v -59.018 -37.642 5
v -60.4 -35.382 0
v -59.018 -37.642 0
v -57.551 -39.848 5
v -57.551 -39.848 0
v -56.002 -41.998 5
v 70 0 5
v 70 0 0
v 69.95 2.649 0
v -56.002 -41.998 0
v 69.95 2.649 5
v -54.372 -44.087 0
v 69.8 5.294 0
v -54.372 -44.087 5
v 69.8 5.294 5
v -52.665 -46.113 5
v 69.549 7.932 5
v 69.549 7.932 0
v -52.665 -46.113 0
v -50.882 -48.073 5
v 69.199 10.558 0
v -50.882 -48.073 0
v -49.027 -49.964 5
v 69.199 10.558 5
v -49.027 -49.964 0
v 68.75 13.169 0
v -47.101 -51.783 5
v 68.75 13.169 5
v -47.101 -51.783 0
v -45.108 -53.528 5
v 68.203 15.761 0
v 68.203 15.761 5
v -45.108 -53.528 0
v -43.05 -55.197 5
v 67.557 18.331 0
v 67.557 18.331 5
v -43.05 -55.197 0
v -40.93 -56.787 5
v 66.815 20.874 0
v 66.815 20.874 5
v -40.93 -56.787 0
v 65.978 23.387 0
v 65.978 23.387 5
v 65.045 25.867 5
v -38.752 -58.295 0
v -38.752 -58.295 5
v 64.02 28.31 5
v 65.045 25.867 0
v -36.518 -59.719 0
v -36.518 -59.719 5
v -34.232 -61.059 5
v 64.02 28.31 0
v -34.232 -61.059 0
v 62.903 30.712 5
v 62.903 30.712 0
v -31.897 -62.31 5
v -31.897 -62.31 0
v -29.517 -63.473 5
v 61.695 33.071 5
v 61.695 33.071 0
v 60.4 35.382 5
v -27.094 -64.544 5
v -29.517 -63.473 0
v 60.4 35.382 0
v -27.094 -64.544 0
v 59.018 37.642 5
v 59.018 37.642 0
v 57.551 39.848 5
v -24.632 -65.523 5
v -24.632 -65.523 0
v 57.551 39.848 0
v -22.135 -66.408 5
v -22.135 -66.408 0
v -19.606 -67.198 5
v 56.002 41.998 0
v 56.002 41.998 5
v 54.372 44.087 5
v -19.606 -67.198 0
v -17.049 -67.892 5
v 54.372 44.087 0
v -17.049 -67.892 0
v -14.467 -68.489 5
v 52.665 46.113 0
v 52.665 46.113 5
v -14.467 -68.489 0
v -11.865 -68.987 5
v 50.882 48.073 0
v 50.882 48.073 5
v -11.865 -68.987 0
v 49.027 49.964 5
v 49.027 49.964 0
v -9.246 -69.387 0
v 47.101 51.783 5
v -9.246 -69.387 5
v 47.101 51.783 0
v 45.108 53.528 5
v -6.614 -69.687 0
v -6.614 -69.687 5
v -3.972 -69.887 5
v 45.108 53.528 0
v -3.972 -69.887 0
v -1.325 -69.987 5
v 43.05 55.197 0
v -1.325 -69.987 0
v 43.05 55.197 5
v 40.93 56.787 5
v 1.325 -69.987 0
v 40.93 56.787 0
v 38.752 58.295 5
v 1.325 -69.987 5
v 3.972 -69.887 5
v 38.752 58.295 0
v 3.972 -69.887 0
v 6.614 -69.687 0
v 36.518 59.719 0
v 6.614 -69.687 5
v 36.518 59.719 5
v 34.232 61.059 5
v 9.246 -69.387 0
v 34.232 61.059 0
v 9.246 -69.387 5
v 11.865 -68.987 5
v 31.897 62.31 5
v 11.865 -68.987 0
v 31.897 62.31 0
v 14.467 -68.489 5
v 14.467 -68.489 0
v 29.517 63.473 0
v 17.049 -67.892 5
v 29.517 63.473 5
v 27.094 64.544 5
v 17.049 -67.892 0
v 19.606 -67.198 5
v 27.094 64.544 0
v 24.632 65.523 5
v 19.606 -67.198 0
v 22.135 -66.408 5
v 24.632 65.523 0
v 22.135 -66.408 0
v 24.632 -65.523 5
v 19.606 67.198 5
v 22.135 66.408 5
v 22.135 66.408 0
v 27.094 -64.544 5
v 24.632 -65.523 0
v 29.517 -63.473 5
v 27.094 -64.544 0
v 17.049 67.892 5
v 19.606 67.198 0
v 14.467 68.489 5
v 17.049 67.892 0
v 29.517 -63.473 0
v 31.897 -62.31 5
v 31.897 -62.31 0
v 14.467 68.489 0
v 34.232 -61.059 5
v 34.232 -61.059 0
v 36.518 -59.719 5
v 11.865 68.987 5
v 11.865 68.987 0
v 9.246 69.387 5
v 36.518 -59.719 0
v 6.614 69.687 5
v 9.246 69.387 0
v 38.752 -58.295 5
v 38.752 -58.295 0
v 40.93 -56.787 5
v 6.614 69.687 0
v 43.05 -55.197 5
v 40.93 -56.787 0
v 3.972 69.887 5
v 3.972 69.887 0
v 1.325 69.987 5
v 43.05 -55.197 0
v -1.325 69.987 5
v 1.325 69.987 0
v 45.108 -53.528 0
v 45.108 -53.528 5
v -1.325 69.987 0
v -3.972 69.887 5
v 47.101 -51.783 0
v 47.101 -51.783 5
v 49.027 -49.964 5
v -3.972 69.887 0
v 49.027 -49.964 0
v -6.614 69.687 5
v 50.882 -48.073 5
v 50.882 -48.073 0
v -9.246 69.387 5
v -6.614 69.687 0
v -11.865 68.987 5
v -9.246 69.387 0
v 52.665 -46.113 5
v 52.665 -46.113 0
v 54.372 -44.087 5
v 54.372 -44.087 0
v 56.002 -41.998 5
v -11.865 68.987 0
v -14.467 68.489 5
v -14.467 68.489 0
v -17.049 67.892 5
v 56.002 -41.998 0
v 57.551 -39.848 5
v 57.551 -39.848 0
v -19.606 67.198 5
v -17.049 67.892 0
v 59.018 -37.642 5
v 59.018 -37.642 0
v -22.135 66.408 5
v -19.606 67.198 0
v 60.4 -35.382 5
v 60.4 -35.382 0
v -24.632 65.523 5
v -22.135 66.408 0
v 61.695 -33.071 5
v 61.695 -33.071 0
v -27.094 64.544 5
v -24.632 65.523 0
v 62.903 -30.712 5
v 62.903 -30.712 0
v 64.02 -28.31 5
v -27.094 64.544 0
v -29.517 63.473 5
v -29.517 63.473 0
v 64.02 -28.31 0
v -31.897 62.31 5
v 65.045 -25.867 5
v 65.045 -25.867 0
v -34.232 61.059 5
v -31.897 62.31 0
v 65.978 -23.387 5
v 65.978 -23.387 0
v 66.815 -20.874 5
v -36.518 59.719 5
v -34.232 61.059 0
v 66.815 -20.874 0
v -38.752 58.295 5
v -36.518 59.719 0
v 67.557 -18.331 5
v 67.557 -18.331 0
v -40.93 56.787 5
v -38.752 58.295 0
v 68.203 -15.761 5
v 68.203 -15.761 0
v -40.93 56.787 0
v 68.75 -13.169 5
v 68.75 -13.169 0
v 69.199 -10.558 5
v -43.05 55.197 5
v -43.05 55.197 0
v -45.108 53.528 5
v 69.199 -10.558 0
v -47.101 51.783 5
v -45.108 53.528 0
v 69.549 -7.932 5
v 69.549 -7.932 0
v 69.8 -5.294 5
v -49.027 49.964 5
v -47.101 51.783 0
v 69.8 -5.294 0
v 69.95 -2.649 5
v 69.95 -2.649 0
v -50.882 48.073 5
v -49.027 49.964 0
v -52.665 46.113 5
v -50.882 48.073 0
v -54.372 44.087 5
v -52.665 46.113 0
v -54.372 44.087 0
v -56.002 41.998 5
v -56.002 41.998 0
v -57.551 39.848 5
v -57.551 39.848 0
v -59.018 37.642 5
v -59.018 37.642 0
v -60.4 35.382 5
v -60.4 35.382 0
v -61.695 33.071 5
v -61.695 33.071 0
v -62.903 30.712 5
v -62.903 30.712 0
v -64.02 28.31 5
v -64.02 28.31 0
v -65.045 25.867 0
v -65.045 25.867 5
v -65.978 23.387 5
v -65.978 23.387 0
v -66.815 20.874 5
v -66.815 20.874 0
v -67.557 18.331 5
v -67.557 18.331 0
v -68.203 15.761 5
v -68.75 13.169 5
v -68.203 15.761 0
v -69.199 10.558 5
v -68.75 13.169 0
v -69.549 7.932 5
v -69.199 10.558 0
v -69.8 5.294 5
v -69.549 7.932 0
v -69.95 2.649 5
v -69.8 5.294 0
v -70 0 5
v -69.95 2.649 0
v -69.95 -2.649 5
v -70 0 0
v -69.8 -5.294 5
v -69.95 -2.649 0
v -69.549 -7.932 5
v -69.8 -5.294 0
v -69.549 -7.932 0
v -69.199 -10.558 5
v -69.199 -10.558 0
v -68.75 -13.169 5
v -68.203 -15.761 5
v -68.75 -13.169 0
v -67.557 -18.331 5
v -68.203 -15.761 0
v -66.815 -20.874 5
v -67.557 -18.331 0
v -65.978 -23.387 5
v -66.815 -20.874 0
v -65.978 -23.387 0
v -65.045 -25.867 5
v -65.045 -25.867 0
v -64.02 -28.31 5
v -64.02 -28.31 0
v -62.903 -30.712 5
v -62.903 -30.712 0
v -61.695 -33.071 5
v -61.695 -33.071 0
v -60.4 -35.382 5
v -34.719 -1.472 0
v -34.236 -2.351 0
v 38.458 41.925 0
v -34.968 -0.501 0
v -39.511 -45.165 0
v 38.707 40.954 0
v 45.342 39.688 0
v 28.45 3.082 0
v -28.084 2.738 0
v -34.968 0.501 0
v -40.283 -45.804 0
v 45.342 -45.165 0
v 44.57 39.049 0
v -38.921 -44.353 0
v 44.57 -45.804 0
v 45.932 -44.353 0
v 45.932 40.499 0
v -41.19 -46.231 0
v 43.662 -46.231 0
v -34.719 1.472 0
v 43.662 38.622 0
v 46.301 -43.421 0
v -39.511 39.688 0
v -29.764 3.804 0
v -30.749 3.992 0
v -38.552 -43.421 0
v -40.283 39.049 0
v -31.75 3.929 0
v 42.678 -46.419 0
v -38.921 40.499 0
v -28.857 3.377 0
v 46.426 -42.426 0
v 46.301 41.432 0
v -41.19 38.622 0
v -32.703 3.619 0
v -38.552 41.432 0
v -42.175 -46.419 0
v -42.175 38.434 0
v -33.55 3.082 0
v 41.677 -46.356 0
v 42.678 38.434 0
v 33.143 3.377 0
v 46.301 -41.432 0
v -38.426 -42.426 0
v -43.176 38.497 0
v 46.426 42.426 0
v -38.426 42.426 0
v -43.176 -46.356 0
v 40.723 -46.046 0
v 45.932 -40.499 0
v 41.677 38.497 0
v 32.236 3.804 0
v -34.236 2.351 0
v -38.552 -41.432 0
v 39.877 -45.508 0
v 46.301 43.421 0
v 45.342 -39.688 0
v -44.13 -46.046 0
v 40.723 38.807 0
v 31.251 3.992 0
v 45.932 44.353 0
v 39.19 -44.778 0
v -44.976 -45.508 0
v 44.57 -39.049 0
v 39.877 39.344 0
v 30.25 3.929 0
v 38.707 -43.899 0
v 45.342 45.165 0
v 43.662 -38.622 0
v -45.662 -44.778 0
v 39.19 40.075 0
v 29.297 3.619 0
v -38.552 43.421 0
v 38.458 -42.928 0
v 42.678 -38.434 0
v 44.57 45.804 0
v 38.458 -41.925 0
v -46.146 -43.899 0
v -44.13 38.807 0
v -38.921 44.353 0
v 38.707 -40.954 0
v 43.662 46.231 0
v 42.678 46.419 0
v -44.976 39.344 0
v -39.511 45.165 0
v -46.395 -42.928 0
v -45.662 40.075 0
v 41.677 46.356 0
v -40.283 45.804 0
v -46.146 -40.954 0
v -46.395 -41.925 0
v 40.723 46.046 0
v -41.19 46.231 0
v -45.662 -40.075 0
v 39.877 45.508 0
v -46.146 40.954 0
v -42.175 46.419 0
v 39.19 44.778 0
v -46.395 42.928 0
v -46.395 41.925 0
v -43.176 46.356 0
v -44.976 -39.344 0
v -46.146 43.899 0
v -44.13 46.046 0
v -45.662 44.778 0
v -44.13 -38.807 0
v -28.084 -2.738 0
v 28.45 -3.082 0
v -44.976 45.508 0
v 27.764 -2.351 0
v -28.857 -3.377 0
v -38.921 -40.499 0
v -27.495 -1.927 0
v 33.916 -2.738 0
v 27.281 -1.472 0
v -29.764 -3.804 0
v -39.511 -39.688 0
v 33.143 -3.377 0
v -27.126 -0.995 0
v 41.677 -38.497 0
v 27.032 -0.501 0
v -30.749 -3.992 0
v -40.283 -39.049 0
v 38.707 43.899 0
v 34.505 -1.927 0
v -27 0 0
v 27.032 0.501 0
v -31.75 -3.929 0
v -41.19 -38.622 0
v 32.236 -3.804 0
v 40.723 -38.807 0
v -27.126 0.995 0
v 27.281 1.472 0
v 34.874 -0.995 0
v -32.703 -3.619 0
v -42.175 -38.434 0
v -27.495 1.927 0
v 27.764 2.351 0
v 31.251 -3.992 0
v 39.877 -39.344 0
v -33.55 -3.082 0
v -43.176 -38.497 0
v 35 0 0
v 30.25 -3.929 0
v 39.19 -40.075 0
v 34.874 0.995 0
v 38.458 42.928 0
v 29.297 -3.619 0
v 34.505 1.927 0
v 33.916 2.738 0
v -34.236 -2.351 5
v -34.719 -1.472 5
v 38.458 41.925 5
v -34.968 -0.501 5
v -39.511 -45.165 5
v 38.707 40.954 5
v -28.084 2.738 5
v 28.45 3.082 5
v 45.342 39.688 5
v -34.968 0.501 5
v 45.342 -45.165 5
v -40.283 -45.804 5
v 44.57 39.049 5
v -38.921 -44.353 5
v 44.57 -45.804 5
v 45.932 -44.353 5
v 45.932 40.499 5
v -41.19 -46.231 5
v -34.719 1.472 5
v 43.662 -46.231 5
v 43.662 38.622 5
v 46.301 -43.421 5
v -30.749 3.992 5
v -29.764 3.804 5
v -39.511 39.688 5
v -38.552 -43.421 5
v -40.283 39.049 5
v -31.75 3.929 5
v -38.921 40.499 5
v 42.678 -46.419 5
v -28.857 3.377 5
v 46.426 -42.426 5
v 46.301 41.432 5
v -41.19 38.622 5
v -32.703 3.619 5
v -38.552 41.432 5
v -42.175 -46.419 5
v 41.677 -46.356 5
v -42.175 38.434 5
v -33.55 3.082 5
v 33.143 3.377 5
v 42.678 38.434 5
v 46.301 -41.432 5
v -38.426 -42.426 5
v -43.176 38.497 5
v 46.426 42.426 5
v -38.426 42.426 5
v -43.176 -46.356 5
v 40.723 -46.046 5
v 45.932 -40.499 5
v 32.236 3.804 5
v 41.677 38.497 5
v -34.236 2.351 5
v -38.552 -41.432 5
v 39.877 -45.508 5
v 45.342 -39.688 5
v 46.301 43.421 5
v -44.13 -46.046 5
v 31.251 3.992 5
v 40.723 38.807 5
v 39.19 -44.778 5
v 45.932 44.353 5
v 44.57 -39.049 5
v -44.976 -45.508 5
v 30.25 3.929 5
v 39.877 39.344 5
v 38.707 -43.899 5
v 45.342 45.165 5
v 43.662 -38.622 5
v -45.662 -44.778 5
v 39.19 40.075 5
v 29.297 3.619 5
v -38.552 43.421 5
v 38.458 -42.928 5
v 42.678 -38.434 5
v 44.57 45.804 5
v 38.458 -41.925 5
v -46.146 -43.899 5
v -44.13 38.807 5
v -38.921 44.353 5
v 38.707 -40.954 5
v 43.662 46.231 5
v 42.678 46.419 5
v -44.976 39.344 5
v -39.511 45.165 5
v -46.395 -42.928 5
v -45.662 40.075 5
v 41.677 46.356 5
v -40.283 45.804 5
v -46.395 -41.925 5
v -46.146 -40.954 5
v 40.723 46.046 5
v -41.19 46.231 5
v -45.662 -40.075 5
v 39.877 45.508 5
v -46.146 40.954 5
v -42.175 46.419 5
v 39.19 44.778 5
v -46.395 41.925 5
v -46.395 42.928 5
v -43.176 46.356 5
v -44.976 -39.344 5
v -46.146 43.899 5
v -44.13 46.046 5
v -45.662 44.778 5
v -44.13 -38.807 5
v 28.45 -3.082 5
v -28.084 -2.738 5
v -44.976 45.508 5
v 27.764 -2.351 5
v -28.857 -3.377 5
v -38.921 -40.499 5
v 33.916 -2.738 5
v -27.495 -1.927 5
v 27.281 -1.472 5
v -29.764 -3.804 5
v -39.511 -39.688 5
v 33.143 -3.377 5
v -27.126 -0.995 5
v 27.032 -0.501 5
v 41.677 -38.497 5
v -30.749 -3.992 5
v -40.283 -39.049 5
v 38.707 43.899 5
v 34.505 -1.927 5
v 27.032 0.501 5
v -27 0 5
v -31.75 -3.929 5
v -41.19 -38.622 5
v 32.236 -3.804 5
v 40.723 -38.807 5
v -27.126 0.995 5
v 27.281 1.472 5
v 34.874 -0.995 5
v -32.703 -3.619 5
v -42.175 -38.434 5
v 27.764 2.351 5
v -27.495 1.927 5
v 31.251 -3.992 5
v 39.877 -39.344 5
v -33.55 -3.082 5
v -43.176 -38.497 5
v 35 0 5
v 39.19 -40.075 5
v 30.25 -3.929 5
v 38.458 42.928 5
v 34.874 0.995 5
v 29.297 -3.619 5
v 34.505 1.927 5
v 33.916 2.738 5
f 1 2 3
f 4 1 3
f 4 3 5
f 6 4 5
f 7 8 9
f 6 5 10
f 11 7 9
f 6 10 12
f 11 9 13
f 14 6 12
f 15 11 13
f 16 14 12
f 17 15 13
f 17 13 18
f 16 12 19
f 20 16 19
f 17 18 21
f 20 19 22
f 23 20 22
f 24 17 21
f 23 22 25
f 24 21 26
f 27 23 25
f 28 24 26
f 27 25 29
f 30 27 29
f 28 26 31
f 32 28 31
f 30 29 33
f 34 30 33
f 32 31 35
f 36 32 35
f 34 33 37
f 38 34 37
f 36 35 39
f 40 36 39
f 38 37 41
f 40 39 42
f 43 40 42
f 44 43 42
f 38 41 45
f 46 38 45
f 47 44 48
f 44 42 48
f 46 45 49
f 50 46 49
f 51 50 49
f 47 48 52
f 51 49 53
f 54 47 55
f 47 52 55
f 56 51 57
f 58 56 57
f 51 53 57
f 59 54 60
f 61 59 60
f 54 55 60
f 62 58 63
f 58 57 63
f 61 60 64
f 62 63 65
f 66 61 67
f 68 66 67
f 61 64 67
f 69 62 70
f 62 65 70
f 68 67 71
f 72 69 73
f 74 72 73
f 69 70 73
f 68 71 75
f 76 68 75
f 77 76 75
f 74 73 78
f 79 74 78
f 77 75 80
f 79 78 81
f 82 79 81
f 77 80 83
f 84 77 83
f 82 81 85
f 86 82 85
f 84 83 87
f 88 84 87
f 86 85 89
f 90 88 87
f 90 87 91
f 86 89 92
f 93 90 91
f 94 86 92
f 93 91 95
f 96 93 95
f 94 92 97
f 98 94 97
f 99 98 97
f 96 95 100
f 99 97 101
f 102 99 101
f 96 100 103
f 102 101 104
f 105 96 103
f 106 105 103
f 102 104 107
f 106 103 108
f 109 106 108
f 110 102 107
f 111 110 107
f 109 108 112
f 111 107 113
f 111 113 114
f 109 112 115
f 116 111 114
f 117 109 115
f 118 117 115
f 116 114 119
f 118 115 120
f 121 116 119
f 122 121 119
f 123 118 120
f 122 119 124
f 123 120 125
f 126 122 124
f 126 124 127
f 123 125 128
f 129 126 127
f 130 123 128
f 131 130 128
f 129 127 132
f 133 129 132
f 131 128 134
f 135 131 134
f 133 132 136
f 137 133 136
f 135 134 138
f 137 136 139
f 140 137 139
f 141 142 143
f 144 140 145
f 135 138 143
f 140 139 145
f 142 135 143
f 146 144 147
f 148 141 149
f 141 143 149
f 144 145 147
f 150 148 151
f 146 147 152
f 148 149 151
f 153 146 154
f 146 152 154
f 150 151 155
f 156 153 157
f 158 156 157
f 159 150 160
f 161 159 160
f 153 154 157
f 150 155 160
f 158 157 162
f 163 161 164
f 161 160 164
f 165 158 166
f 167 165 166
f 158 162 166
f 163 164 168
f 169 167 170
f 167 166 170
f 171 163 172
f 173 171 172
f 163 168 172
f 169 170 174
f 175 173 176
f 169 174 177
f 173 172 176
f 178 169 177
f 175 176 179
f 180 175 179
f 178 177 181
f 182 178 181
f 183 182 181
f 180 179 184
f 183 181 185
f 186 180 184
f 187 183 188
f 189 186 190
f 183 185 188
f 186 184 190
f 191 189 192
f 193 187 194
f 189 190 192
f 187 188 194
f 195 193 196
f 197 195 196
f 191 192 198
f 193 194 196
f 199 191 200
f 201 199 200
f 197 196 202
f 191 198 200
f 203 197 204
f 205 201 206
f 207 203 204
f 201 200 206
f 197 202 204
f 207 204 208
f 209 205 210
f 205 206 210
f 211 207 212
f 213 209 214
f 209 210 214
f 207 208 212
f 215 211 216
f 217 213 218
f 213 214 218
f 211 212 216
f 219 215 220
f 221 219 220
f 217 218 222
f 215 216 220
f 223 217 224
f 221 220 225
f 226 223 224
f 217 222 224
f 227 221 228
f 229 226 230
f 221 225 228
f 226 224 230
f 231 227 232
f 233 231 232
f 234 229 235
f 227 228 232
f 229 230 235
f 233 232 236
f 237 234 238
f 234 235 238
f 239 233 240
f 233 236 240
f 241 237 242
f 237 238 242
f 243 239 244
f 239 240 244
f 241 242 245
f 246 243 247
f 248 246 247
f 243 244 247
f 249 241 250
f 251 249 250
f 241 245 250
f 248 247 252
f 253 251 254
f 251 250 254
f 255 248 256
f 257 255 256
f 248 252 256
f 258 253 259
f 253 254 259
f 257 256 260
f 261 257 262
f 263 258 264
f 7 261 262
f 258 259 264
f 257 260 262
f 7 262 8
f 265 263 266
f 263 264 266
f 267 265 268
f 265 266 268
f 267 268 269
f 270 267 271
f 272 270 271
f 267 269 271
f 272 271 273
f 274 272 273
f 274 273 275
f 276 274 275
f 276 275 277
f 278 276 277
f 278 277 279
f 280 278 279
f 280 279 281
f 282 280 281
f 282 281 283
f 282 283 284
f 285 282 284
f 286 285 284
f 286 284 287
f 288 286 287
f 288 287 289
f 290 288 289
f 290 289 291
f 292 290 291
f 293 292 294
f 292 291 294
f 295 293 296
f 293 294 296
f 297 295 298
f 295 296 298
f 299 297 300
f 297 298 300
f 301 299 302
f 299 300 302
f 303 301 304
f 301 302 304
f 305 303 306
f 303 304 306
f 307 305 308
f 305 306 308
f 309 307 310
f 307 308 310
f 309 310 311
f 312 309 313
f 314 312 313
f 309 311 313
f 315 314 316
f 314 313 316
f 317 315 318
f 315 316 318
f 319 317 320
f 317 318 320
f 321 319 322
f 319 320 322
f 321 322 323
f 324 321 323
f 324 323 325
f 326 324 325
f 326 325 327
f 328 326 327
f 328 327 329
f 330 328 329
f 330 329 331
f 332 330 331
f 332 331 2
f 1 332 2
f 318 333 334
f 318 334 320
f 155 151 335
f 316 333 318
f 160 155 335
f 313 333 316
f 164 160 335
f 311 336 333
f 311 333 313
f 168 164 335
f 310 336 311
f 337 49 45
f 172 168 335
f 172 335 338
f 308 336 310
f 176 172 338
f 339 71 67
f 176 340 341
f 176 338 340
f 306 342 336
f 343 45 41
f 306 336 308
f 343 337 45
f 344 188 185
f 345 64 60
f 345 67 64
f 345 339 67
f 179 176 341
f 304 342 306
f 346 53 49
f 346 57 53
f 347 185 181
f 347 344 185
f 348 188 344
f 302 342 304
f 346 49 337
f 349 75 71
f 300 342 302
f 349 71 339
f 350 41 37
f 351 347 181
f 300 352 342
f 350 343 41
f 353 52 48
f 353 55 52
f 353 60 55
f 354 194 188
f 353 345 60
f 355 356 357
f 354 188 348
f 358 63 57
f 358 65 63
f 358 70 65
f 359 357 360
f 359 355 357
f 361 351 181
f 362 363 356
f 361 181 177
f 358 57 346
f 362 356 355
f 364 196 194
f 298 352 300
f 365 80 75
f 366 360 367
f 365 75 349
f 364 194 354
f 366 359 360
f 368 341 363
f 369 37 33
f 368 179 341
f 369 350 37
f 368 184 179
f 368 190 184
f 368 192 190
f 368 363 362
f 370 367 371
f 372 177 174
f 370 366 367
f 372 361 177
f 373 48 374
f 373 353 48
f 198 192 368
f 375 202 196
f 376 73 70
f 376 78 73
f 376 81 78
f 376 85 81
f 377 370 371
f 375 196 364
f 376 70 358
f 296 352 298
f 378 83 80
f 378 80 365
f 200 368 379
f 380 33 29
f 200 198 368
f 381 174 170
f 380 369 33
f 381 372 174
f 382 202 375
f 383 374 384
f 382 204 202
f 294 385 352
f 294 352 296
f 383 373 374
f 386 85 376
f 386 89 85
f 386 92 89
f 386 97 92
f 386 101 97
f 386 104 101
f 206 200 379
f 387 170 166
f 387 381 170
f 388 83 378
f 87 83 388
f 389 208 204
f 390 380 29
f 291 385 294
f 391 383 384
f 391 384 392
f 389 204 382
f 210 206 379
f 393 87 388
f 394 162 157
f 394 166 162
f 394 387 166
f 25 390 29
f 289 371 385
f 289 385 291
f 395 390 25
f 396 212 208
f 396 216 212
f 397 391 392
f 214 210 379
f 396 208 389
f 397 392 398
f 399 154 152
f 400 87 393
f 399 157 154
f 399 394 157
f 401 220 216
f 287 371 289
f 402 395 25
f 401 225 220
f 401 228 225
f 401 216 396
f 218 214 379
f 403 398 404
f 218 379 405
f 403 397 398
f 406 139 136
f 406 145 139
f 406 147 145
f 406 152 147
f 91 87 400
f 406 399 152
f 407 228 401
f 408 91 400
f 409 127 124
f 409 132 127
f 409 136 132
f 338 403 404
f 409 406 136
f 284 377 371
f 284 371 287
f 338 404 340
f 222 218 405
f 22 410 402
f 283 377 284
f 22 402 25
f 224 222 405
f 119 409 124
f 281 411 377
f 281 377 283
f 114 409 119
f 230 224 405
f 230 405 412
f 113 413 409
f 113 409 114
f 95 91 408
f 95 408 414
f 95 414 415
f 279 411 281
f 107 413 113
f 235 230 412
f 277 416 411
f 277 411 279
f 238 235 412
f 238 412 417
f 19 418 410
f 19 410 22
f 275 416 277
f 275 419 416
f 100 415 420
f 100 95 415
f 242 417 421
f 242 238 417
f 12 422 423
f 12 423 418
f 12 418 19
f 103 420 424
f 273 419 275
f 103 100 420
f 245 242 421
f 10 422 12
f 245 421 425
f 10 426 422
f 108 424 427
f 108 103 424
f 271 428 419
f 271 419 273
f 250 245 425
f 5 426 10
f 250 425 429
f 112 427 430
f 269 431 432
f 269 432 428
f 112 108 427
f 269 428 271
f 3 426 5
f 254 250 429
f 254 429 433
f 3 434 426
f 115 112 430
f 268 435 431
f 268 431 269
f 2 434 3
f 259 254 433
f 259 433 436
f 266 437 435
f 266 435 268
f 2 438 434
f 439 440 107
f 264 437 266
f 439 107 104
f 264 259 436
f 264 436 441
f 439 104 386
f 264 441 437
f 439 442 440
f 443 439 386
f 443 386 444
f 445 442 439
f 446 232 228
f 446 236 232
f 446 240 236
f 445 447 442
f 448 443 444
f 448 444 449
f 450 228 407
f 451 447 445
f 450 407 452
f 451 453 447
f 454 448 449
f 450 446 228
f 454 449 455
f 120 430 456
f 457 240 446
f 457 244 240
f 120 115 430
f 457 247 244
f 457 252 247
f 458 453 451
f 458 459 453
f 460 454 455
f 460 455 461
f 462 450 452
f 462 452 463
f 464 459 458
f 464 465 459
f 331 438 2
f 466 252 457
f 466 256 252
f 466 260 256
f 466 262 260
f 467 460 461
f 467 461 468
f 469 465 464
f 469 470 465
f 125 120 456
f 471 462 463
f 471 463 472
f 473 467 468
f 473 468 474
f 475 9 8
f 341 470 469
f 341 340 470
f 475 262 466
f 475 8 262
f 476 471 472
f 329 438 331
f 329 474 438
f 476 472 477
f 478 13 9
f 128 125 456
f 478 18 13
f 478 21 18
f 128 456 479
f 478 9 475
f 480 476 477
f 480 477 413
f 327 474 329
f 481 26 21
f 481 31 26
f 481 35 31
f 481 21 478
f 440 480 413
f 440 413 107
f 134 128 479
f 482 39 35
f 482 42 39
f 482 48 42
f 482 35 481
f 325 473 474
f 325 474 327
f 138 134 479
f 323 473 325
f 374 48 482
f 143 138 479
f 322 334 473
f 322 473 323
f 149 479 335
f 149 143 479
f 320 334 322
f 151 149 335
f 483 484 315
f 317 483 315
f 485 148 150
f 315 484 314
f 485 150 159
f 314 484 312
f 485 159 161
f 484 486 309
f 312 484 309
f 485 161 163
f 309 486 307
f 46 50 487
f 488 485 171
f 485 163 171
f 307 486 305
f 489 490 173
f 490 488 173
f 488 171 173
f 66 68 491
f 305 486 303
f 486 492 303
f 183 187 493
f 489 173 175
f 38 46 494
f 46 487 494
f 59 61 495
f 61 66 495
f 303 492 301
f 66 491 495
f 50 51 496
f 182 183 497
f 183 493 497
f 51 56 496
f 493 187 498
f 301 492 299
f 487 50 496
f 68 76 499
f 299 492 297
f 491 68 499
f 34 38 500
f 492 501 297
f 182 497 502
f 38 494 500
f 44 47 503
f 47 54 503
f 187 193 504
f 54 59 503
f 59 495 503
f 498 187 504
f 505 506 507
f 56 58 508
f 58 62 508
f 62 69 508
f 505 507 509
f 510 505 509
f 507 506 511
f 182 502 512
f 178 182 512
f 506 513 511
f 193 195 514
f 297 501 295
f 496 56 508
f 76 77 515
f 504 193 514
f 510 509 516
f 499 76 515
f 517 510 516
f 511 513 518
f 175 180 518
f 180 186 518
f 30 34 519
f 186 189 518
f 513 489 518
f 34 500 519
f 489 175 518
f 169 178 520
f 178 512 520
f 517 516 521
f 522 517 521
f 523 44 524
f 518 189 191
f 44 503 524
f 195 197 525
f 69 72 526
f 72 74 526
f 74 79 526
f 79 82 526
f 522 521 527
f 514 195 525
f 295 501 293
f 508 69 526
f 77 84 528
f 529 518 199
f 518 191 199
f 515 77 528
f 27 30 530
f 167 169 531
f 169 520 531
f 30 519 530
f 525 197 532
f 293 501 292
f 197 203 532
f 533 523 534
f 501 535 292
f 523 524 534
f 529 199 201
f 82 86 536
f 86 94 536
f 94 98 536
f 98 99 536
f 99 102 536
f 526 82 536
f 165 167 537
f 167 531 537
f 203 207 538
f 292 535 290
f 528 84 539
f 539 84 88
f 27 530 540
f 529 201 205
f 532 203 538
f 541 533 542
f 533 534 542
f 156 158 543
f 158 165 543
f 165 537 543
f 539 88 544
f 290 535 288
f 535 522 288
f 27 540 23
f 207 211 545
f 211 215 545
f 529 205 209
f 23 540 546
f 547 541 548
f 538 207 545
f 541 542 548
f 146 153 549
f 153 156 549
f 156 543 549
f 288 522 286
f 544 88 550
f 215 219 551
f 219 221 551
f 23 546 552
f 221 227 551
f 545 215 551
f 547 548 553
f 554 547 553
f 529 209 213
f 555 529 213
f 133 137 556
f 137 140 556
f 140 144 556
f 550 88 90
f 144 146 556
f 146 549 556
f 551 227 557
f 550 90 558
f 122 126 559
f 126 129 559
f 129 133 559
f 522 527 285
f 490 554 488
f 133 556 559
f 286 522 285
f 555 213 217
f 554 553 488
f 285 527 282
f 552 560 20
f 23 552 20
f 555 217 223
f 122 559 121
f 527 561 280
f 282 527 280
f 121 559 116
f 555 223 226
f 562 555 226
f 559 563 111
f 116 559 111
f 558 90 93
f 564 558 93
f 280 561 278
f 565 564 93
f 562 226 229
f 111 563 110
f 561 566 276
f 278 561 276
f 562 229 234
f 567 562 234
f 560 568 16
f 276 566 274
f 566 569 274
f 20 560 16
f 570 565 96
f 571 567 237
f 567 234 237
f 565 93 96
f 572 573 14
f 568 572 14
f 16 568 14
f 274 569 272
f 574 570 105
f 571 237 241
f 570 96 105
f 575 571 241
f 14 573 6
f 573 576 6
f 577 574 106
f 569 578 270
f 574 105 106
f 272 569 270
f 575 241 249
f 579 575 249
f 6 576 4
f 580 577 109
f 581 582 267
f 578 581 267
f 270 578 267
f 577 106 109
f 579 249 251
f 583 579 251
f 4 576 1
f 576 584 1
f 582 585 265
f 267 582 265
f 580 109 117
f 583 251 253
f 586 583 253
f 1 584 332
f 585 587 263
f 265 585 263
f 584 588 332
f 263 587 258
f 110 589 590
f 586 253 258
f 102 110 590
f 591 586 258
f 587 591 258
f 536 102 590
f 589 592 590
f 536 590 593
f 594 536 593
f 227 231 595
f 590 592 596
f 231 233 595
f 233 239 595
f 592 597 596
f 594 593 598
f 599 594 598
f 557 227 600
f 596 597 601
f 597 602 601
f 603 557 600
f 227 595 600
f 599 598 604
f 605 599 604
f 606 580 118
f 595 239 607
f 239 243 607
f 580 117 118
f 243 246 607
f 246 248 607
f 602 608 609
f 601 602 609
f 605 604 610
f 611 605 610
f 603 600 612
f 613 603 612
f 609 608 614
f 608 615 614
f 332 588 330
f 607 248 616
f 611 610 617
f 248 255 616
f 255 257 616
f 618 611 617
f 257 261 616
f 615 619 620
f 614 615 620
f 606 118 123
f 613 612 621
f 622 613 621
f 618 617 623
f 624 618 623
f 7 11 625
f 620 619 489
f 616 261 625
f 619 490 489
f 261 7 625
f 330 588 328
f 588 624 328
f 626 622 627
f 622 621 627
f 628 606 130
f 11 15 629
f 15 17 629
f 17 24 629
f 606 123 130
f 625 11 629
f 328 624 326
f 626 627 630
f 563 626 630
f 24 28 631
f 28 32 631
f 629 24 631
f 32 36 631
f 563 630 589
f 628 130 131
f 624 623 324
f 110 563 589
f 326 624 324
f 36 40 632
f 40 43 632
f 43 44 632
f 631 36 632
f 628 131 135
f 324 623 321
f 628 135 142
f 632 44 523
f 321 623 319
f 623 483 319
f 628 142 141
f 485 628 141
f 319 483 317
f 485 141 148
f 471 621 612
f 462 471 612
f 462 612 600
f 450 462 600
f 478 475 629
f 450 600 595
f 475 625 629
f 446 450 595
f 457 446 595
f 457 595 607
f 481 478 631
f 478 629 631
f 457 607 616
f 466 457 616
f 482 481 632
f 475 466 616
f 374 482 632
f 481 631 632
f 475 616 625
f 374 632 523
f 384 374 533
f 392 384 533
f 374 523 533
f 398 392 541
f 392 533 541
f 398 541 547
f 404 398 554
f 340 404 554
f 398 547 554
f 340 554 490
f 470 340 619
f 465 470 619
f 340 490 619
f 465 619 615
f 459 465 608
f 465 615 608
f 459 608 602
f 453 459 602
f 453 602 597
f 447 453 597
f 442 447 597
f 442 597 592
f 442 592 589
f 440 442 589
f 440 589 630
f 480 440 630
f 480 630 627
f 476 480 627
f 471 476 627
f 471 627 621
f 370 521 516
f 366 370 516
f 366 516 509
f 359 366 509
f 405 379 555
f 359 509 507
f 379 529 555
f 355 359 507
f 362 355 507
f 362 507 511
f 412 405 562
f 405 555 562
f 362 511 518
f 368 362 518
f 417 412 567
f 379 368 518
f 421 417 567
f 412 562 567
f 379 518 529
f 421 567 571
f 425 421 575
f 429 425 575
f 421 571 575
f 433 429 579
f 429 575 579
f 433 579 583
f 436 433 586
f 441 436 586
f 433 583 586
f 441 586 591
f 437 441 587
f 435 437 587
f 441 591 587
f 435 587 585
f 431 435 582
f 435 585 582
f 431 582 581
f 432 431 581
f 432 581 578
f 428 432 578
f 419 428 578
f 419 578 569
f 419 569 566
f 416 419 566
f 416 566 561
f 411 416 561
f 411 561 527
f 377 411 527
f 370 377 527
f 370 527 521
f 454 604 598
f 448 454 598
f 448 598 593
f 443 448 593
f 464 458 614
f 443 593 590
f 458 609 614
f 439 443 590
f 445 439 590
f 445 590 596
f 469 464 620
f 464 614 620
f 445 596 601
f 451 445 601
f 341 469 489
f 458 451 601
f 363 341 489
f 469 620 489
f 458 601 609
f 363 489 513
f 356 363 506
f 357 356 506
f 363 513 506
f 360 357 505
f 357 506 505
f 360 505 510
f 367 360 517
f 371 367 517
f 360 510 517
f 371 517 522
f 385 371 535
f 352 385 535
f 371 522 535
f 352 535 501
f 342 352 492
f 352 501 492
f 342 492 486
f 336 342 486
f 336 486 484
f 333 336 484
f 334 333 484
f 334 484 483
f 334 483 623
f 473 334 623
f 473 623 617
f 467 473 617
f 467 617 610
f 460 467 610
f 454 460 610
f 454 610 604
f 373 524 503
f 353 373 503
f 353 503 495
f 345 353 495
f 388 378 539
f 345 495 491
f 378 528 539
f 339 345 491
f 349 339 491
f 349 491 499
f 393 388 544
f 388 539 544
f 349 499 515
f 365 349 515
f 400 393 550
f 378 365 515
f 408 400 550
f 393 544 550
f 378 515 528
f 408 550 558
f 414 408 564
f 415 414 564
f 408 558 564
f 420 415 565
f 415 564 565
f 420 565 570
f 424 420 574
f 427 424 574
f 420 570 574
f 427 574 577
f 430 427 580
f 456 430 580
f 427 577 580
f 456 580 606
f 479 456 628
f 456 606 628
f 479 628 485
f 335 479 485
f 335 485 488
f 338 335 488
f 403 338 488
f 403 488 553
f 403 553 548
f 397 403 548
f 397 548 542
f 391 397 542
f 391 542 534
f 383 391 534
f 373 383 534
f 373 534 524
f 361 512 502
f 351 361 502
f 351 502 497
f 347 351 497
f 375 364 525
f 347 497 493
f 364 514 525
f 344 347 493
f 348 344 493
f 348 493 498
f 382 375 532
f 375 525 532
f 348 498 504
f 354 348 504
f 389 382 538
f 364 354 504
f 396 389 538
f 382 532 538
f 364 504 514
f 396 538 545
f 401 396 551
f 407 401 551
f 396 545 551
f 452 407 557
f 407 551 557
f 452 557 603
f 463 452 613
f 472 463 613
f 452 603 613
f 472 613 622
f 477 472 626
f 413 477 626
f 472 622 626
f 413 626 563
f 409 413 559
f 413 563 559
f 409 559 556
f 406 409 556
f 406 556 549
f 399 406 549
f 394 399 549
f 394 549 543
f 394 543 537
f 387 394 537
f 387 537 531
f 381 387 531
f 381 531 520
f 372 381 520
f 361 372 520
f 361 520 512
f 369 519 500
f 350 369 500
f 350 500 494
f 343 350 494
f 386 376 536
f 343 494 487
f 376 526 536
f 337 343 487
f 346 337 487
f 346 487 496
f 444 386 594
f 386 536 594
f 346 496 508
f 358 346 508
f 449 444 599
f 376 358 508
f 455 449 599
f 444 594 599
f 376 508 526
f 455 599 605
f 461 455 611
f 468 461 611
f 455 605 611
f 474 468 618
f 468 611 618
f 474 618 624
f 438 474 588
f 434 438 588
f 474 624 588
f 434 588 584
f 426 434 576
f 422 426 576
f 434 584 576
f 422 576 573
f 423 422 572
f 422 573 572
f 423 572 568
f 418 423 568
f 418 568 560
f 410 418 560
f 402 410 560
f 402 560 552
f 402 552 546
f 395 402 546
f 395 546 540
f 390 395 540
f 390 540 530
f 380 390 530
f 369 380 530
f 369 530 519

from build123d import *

# Parameters (mm, degrees)
SKETCH_R        = 70
PAD_DEPTH       = 5
SKETCH001_R     = 4
POCKET_DEPTH    = 5
SKETCH002_R     = 4
POCKET001_DEPTH = 5


with BuildPart() as part:
    # Sketch → Pad (new body)
    with BuildSketch(Plane.XY):
        Circle(SKETCH_R)
    extrude(amount=PAD_DEPTH)

    # Sketch001 → Pocket (cut)
    with BuildSketch(Plane.XY.offset(5)):
        with Locations((-42.426407, 42.426407)):
            Circle(SKETCH001_R)
        with Locations((42.426407, 42.426407)):
            Circle(SKETCH001_R)
        with Locations((42.426407, -42.426407)):
            Circle(SKETCH001_R)
        with Locations((-42.426407, -42.426407)):
            Circle(SKETCH001_R)
    extrude(amount=-POCKET_DEPTH, mode=Mode.SUBTRACT)

    # Sketch002 → Pocket001 (cut)
    with BuildSketch(Plane.XY.offset(5)):
        with Locations((-31, 0)):
            Circle(SKETCH002_R)
        with Locations((31, 0)):
            Circle(SKETCH002_R)
    extrude(amount=-POCKET001_DEPTH, mode=Mode.SUBTRACT)


solid = part.part
